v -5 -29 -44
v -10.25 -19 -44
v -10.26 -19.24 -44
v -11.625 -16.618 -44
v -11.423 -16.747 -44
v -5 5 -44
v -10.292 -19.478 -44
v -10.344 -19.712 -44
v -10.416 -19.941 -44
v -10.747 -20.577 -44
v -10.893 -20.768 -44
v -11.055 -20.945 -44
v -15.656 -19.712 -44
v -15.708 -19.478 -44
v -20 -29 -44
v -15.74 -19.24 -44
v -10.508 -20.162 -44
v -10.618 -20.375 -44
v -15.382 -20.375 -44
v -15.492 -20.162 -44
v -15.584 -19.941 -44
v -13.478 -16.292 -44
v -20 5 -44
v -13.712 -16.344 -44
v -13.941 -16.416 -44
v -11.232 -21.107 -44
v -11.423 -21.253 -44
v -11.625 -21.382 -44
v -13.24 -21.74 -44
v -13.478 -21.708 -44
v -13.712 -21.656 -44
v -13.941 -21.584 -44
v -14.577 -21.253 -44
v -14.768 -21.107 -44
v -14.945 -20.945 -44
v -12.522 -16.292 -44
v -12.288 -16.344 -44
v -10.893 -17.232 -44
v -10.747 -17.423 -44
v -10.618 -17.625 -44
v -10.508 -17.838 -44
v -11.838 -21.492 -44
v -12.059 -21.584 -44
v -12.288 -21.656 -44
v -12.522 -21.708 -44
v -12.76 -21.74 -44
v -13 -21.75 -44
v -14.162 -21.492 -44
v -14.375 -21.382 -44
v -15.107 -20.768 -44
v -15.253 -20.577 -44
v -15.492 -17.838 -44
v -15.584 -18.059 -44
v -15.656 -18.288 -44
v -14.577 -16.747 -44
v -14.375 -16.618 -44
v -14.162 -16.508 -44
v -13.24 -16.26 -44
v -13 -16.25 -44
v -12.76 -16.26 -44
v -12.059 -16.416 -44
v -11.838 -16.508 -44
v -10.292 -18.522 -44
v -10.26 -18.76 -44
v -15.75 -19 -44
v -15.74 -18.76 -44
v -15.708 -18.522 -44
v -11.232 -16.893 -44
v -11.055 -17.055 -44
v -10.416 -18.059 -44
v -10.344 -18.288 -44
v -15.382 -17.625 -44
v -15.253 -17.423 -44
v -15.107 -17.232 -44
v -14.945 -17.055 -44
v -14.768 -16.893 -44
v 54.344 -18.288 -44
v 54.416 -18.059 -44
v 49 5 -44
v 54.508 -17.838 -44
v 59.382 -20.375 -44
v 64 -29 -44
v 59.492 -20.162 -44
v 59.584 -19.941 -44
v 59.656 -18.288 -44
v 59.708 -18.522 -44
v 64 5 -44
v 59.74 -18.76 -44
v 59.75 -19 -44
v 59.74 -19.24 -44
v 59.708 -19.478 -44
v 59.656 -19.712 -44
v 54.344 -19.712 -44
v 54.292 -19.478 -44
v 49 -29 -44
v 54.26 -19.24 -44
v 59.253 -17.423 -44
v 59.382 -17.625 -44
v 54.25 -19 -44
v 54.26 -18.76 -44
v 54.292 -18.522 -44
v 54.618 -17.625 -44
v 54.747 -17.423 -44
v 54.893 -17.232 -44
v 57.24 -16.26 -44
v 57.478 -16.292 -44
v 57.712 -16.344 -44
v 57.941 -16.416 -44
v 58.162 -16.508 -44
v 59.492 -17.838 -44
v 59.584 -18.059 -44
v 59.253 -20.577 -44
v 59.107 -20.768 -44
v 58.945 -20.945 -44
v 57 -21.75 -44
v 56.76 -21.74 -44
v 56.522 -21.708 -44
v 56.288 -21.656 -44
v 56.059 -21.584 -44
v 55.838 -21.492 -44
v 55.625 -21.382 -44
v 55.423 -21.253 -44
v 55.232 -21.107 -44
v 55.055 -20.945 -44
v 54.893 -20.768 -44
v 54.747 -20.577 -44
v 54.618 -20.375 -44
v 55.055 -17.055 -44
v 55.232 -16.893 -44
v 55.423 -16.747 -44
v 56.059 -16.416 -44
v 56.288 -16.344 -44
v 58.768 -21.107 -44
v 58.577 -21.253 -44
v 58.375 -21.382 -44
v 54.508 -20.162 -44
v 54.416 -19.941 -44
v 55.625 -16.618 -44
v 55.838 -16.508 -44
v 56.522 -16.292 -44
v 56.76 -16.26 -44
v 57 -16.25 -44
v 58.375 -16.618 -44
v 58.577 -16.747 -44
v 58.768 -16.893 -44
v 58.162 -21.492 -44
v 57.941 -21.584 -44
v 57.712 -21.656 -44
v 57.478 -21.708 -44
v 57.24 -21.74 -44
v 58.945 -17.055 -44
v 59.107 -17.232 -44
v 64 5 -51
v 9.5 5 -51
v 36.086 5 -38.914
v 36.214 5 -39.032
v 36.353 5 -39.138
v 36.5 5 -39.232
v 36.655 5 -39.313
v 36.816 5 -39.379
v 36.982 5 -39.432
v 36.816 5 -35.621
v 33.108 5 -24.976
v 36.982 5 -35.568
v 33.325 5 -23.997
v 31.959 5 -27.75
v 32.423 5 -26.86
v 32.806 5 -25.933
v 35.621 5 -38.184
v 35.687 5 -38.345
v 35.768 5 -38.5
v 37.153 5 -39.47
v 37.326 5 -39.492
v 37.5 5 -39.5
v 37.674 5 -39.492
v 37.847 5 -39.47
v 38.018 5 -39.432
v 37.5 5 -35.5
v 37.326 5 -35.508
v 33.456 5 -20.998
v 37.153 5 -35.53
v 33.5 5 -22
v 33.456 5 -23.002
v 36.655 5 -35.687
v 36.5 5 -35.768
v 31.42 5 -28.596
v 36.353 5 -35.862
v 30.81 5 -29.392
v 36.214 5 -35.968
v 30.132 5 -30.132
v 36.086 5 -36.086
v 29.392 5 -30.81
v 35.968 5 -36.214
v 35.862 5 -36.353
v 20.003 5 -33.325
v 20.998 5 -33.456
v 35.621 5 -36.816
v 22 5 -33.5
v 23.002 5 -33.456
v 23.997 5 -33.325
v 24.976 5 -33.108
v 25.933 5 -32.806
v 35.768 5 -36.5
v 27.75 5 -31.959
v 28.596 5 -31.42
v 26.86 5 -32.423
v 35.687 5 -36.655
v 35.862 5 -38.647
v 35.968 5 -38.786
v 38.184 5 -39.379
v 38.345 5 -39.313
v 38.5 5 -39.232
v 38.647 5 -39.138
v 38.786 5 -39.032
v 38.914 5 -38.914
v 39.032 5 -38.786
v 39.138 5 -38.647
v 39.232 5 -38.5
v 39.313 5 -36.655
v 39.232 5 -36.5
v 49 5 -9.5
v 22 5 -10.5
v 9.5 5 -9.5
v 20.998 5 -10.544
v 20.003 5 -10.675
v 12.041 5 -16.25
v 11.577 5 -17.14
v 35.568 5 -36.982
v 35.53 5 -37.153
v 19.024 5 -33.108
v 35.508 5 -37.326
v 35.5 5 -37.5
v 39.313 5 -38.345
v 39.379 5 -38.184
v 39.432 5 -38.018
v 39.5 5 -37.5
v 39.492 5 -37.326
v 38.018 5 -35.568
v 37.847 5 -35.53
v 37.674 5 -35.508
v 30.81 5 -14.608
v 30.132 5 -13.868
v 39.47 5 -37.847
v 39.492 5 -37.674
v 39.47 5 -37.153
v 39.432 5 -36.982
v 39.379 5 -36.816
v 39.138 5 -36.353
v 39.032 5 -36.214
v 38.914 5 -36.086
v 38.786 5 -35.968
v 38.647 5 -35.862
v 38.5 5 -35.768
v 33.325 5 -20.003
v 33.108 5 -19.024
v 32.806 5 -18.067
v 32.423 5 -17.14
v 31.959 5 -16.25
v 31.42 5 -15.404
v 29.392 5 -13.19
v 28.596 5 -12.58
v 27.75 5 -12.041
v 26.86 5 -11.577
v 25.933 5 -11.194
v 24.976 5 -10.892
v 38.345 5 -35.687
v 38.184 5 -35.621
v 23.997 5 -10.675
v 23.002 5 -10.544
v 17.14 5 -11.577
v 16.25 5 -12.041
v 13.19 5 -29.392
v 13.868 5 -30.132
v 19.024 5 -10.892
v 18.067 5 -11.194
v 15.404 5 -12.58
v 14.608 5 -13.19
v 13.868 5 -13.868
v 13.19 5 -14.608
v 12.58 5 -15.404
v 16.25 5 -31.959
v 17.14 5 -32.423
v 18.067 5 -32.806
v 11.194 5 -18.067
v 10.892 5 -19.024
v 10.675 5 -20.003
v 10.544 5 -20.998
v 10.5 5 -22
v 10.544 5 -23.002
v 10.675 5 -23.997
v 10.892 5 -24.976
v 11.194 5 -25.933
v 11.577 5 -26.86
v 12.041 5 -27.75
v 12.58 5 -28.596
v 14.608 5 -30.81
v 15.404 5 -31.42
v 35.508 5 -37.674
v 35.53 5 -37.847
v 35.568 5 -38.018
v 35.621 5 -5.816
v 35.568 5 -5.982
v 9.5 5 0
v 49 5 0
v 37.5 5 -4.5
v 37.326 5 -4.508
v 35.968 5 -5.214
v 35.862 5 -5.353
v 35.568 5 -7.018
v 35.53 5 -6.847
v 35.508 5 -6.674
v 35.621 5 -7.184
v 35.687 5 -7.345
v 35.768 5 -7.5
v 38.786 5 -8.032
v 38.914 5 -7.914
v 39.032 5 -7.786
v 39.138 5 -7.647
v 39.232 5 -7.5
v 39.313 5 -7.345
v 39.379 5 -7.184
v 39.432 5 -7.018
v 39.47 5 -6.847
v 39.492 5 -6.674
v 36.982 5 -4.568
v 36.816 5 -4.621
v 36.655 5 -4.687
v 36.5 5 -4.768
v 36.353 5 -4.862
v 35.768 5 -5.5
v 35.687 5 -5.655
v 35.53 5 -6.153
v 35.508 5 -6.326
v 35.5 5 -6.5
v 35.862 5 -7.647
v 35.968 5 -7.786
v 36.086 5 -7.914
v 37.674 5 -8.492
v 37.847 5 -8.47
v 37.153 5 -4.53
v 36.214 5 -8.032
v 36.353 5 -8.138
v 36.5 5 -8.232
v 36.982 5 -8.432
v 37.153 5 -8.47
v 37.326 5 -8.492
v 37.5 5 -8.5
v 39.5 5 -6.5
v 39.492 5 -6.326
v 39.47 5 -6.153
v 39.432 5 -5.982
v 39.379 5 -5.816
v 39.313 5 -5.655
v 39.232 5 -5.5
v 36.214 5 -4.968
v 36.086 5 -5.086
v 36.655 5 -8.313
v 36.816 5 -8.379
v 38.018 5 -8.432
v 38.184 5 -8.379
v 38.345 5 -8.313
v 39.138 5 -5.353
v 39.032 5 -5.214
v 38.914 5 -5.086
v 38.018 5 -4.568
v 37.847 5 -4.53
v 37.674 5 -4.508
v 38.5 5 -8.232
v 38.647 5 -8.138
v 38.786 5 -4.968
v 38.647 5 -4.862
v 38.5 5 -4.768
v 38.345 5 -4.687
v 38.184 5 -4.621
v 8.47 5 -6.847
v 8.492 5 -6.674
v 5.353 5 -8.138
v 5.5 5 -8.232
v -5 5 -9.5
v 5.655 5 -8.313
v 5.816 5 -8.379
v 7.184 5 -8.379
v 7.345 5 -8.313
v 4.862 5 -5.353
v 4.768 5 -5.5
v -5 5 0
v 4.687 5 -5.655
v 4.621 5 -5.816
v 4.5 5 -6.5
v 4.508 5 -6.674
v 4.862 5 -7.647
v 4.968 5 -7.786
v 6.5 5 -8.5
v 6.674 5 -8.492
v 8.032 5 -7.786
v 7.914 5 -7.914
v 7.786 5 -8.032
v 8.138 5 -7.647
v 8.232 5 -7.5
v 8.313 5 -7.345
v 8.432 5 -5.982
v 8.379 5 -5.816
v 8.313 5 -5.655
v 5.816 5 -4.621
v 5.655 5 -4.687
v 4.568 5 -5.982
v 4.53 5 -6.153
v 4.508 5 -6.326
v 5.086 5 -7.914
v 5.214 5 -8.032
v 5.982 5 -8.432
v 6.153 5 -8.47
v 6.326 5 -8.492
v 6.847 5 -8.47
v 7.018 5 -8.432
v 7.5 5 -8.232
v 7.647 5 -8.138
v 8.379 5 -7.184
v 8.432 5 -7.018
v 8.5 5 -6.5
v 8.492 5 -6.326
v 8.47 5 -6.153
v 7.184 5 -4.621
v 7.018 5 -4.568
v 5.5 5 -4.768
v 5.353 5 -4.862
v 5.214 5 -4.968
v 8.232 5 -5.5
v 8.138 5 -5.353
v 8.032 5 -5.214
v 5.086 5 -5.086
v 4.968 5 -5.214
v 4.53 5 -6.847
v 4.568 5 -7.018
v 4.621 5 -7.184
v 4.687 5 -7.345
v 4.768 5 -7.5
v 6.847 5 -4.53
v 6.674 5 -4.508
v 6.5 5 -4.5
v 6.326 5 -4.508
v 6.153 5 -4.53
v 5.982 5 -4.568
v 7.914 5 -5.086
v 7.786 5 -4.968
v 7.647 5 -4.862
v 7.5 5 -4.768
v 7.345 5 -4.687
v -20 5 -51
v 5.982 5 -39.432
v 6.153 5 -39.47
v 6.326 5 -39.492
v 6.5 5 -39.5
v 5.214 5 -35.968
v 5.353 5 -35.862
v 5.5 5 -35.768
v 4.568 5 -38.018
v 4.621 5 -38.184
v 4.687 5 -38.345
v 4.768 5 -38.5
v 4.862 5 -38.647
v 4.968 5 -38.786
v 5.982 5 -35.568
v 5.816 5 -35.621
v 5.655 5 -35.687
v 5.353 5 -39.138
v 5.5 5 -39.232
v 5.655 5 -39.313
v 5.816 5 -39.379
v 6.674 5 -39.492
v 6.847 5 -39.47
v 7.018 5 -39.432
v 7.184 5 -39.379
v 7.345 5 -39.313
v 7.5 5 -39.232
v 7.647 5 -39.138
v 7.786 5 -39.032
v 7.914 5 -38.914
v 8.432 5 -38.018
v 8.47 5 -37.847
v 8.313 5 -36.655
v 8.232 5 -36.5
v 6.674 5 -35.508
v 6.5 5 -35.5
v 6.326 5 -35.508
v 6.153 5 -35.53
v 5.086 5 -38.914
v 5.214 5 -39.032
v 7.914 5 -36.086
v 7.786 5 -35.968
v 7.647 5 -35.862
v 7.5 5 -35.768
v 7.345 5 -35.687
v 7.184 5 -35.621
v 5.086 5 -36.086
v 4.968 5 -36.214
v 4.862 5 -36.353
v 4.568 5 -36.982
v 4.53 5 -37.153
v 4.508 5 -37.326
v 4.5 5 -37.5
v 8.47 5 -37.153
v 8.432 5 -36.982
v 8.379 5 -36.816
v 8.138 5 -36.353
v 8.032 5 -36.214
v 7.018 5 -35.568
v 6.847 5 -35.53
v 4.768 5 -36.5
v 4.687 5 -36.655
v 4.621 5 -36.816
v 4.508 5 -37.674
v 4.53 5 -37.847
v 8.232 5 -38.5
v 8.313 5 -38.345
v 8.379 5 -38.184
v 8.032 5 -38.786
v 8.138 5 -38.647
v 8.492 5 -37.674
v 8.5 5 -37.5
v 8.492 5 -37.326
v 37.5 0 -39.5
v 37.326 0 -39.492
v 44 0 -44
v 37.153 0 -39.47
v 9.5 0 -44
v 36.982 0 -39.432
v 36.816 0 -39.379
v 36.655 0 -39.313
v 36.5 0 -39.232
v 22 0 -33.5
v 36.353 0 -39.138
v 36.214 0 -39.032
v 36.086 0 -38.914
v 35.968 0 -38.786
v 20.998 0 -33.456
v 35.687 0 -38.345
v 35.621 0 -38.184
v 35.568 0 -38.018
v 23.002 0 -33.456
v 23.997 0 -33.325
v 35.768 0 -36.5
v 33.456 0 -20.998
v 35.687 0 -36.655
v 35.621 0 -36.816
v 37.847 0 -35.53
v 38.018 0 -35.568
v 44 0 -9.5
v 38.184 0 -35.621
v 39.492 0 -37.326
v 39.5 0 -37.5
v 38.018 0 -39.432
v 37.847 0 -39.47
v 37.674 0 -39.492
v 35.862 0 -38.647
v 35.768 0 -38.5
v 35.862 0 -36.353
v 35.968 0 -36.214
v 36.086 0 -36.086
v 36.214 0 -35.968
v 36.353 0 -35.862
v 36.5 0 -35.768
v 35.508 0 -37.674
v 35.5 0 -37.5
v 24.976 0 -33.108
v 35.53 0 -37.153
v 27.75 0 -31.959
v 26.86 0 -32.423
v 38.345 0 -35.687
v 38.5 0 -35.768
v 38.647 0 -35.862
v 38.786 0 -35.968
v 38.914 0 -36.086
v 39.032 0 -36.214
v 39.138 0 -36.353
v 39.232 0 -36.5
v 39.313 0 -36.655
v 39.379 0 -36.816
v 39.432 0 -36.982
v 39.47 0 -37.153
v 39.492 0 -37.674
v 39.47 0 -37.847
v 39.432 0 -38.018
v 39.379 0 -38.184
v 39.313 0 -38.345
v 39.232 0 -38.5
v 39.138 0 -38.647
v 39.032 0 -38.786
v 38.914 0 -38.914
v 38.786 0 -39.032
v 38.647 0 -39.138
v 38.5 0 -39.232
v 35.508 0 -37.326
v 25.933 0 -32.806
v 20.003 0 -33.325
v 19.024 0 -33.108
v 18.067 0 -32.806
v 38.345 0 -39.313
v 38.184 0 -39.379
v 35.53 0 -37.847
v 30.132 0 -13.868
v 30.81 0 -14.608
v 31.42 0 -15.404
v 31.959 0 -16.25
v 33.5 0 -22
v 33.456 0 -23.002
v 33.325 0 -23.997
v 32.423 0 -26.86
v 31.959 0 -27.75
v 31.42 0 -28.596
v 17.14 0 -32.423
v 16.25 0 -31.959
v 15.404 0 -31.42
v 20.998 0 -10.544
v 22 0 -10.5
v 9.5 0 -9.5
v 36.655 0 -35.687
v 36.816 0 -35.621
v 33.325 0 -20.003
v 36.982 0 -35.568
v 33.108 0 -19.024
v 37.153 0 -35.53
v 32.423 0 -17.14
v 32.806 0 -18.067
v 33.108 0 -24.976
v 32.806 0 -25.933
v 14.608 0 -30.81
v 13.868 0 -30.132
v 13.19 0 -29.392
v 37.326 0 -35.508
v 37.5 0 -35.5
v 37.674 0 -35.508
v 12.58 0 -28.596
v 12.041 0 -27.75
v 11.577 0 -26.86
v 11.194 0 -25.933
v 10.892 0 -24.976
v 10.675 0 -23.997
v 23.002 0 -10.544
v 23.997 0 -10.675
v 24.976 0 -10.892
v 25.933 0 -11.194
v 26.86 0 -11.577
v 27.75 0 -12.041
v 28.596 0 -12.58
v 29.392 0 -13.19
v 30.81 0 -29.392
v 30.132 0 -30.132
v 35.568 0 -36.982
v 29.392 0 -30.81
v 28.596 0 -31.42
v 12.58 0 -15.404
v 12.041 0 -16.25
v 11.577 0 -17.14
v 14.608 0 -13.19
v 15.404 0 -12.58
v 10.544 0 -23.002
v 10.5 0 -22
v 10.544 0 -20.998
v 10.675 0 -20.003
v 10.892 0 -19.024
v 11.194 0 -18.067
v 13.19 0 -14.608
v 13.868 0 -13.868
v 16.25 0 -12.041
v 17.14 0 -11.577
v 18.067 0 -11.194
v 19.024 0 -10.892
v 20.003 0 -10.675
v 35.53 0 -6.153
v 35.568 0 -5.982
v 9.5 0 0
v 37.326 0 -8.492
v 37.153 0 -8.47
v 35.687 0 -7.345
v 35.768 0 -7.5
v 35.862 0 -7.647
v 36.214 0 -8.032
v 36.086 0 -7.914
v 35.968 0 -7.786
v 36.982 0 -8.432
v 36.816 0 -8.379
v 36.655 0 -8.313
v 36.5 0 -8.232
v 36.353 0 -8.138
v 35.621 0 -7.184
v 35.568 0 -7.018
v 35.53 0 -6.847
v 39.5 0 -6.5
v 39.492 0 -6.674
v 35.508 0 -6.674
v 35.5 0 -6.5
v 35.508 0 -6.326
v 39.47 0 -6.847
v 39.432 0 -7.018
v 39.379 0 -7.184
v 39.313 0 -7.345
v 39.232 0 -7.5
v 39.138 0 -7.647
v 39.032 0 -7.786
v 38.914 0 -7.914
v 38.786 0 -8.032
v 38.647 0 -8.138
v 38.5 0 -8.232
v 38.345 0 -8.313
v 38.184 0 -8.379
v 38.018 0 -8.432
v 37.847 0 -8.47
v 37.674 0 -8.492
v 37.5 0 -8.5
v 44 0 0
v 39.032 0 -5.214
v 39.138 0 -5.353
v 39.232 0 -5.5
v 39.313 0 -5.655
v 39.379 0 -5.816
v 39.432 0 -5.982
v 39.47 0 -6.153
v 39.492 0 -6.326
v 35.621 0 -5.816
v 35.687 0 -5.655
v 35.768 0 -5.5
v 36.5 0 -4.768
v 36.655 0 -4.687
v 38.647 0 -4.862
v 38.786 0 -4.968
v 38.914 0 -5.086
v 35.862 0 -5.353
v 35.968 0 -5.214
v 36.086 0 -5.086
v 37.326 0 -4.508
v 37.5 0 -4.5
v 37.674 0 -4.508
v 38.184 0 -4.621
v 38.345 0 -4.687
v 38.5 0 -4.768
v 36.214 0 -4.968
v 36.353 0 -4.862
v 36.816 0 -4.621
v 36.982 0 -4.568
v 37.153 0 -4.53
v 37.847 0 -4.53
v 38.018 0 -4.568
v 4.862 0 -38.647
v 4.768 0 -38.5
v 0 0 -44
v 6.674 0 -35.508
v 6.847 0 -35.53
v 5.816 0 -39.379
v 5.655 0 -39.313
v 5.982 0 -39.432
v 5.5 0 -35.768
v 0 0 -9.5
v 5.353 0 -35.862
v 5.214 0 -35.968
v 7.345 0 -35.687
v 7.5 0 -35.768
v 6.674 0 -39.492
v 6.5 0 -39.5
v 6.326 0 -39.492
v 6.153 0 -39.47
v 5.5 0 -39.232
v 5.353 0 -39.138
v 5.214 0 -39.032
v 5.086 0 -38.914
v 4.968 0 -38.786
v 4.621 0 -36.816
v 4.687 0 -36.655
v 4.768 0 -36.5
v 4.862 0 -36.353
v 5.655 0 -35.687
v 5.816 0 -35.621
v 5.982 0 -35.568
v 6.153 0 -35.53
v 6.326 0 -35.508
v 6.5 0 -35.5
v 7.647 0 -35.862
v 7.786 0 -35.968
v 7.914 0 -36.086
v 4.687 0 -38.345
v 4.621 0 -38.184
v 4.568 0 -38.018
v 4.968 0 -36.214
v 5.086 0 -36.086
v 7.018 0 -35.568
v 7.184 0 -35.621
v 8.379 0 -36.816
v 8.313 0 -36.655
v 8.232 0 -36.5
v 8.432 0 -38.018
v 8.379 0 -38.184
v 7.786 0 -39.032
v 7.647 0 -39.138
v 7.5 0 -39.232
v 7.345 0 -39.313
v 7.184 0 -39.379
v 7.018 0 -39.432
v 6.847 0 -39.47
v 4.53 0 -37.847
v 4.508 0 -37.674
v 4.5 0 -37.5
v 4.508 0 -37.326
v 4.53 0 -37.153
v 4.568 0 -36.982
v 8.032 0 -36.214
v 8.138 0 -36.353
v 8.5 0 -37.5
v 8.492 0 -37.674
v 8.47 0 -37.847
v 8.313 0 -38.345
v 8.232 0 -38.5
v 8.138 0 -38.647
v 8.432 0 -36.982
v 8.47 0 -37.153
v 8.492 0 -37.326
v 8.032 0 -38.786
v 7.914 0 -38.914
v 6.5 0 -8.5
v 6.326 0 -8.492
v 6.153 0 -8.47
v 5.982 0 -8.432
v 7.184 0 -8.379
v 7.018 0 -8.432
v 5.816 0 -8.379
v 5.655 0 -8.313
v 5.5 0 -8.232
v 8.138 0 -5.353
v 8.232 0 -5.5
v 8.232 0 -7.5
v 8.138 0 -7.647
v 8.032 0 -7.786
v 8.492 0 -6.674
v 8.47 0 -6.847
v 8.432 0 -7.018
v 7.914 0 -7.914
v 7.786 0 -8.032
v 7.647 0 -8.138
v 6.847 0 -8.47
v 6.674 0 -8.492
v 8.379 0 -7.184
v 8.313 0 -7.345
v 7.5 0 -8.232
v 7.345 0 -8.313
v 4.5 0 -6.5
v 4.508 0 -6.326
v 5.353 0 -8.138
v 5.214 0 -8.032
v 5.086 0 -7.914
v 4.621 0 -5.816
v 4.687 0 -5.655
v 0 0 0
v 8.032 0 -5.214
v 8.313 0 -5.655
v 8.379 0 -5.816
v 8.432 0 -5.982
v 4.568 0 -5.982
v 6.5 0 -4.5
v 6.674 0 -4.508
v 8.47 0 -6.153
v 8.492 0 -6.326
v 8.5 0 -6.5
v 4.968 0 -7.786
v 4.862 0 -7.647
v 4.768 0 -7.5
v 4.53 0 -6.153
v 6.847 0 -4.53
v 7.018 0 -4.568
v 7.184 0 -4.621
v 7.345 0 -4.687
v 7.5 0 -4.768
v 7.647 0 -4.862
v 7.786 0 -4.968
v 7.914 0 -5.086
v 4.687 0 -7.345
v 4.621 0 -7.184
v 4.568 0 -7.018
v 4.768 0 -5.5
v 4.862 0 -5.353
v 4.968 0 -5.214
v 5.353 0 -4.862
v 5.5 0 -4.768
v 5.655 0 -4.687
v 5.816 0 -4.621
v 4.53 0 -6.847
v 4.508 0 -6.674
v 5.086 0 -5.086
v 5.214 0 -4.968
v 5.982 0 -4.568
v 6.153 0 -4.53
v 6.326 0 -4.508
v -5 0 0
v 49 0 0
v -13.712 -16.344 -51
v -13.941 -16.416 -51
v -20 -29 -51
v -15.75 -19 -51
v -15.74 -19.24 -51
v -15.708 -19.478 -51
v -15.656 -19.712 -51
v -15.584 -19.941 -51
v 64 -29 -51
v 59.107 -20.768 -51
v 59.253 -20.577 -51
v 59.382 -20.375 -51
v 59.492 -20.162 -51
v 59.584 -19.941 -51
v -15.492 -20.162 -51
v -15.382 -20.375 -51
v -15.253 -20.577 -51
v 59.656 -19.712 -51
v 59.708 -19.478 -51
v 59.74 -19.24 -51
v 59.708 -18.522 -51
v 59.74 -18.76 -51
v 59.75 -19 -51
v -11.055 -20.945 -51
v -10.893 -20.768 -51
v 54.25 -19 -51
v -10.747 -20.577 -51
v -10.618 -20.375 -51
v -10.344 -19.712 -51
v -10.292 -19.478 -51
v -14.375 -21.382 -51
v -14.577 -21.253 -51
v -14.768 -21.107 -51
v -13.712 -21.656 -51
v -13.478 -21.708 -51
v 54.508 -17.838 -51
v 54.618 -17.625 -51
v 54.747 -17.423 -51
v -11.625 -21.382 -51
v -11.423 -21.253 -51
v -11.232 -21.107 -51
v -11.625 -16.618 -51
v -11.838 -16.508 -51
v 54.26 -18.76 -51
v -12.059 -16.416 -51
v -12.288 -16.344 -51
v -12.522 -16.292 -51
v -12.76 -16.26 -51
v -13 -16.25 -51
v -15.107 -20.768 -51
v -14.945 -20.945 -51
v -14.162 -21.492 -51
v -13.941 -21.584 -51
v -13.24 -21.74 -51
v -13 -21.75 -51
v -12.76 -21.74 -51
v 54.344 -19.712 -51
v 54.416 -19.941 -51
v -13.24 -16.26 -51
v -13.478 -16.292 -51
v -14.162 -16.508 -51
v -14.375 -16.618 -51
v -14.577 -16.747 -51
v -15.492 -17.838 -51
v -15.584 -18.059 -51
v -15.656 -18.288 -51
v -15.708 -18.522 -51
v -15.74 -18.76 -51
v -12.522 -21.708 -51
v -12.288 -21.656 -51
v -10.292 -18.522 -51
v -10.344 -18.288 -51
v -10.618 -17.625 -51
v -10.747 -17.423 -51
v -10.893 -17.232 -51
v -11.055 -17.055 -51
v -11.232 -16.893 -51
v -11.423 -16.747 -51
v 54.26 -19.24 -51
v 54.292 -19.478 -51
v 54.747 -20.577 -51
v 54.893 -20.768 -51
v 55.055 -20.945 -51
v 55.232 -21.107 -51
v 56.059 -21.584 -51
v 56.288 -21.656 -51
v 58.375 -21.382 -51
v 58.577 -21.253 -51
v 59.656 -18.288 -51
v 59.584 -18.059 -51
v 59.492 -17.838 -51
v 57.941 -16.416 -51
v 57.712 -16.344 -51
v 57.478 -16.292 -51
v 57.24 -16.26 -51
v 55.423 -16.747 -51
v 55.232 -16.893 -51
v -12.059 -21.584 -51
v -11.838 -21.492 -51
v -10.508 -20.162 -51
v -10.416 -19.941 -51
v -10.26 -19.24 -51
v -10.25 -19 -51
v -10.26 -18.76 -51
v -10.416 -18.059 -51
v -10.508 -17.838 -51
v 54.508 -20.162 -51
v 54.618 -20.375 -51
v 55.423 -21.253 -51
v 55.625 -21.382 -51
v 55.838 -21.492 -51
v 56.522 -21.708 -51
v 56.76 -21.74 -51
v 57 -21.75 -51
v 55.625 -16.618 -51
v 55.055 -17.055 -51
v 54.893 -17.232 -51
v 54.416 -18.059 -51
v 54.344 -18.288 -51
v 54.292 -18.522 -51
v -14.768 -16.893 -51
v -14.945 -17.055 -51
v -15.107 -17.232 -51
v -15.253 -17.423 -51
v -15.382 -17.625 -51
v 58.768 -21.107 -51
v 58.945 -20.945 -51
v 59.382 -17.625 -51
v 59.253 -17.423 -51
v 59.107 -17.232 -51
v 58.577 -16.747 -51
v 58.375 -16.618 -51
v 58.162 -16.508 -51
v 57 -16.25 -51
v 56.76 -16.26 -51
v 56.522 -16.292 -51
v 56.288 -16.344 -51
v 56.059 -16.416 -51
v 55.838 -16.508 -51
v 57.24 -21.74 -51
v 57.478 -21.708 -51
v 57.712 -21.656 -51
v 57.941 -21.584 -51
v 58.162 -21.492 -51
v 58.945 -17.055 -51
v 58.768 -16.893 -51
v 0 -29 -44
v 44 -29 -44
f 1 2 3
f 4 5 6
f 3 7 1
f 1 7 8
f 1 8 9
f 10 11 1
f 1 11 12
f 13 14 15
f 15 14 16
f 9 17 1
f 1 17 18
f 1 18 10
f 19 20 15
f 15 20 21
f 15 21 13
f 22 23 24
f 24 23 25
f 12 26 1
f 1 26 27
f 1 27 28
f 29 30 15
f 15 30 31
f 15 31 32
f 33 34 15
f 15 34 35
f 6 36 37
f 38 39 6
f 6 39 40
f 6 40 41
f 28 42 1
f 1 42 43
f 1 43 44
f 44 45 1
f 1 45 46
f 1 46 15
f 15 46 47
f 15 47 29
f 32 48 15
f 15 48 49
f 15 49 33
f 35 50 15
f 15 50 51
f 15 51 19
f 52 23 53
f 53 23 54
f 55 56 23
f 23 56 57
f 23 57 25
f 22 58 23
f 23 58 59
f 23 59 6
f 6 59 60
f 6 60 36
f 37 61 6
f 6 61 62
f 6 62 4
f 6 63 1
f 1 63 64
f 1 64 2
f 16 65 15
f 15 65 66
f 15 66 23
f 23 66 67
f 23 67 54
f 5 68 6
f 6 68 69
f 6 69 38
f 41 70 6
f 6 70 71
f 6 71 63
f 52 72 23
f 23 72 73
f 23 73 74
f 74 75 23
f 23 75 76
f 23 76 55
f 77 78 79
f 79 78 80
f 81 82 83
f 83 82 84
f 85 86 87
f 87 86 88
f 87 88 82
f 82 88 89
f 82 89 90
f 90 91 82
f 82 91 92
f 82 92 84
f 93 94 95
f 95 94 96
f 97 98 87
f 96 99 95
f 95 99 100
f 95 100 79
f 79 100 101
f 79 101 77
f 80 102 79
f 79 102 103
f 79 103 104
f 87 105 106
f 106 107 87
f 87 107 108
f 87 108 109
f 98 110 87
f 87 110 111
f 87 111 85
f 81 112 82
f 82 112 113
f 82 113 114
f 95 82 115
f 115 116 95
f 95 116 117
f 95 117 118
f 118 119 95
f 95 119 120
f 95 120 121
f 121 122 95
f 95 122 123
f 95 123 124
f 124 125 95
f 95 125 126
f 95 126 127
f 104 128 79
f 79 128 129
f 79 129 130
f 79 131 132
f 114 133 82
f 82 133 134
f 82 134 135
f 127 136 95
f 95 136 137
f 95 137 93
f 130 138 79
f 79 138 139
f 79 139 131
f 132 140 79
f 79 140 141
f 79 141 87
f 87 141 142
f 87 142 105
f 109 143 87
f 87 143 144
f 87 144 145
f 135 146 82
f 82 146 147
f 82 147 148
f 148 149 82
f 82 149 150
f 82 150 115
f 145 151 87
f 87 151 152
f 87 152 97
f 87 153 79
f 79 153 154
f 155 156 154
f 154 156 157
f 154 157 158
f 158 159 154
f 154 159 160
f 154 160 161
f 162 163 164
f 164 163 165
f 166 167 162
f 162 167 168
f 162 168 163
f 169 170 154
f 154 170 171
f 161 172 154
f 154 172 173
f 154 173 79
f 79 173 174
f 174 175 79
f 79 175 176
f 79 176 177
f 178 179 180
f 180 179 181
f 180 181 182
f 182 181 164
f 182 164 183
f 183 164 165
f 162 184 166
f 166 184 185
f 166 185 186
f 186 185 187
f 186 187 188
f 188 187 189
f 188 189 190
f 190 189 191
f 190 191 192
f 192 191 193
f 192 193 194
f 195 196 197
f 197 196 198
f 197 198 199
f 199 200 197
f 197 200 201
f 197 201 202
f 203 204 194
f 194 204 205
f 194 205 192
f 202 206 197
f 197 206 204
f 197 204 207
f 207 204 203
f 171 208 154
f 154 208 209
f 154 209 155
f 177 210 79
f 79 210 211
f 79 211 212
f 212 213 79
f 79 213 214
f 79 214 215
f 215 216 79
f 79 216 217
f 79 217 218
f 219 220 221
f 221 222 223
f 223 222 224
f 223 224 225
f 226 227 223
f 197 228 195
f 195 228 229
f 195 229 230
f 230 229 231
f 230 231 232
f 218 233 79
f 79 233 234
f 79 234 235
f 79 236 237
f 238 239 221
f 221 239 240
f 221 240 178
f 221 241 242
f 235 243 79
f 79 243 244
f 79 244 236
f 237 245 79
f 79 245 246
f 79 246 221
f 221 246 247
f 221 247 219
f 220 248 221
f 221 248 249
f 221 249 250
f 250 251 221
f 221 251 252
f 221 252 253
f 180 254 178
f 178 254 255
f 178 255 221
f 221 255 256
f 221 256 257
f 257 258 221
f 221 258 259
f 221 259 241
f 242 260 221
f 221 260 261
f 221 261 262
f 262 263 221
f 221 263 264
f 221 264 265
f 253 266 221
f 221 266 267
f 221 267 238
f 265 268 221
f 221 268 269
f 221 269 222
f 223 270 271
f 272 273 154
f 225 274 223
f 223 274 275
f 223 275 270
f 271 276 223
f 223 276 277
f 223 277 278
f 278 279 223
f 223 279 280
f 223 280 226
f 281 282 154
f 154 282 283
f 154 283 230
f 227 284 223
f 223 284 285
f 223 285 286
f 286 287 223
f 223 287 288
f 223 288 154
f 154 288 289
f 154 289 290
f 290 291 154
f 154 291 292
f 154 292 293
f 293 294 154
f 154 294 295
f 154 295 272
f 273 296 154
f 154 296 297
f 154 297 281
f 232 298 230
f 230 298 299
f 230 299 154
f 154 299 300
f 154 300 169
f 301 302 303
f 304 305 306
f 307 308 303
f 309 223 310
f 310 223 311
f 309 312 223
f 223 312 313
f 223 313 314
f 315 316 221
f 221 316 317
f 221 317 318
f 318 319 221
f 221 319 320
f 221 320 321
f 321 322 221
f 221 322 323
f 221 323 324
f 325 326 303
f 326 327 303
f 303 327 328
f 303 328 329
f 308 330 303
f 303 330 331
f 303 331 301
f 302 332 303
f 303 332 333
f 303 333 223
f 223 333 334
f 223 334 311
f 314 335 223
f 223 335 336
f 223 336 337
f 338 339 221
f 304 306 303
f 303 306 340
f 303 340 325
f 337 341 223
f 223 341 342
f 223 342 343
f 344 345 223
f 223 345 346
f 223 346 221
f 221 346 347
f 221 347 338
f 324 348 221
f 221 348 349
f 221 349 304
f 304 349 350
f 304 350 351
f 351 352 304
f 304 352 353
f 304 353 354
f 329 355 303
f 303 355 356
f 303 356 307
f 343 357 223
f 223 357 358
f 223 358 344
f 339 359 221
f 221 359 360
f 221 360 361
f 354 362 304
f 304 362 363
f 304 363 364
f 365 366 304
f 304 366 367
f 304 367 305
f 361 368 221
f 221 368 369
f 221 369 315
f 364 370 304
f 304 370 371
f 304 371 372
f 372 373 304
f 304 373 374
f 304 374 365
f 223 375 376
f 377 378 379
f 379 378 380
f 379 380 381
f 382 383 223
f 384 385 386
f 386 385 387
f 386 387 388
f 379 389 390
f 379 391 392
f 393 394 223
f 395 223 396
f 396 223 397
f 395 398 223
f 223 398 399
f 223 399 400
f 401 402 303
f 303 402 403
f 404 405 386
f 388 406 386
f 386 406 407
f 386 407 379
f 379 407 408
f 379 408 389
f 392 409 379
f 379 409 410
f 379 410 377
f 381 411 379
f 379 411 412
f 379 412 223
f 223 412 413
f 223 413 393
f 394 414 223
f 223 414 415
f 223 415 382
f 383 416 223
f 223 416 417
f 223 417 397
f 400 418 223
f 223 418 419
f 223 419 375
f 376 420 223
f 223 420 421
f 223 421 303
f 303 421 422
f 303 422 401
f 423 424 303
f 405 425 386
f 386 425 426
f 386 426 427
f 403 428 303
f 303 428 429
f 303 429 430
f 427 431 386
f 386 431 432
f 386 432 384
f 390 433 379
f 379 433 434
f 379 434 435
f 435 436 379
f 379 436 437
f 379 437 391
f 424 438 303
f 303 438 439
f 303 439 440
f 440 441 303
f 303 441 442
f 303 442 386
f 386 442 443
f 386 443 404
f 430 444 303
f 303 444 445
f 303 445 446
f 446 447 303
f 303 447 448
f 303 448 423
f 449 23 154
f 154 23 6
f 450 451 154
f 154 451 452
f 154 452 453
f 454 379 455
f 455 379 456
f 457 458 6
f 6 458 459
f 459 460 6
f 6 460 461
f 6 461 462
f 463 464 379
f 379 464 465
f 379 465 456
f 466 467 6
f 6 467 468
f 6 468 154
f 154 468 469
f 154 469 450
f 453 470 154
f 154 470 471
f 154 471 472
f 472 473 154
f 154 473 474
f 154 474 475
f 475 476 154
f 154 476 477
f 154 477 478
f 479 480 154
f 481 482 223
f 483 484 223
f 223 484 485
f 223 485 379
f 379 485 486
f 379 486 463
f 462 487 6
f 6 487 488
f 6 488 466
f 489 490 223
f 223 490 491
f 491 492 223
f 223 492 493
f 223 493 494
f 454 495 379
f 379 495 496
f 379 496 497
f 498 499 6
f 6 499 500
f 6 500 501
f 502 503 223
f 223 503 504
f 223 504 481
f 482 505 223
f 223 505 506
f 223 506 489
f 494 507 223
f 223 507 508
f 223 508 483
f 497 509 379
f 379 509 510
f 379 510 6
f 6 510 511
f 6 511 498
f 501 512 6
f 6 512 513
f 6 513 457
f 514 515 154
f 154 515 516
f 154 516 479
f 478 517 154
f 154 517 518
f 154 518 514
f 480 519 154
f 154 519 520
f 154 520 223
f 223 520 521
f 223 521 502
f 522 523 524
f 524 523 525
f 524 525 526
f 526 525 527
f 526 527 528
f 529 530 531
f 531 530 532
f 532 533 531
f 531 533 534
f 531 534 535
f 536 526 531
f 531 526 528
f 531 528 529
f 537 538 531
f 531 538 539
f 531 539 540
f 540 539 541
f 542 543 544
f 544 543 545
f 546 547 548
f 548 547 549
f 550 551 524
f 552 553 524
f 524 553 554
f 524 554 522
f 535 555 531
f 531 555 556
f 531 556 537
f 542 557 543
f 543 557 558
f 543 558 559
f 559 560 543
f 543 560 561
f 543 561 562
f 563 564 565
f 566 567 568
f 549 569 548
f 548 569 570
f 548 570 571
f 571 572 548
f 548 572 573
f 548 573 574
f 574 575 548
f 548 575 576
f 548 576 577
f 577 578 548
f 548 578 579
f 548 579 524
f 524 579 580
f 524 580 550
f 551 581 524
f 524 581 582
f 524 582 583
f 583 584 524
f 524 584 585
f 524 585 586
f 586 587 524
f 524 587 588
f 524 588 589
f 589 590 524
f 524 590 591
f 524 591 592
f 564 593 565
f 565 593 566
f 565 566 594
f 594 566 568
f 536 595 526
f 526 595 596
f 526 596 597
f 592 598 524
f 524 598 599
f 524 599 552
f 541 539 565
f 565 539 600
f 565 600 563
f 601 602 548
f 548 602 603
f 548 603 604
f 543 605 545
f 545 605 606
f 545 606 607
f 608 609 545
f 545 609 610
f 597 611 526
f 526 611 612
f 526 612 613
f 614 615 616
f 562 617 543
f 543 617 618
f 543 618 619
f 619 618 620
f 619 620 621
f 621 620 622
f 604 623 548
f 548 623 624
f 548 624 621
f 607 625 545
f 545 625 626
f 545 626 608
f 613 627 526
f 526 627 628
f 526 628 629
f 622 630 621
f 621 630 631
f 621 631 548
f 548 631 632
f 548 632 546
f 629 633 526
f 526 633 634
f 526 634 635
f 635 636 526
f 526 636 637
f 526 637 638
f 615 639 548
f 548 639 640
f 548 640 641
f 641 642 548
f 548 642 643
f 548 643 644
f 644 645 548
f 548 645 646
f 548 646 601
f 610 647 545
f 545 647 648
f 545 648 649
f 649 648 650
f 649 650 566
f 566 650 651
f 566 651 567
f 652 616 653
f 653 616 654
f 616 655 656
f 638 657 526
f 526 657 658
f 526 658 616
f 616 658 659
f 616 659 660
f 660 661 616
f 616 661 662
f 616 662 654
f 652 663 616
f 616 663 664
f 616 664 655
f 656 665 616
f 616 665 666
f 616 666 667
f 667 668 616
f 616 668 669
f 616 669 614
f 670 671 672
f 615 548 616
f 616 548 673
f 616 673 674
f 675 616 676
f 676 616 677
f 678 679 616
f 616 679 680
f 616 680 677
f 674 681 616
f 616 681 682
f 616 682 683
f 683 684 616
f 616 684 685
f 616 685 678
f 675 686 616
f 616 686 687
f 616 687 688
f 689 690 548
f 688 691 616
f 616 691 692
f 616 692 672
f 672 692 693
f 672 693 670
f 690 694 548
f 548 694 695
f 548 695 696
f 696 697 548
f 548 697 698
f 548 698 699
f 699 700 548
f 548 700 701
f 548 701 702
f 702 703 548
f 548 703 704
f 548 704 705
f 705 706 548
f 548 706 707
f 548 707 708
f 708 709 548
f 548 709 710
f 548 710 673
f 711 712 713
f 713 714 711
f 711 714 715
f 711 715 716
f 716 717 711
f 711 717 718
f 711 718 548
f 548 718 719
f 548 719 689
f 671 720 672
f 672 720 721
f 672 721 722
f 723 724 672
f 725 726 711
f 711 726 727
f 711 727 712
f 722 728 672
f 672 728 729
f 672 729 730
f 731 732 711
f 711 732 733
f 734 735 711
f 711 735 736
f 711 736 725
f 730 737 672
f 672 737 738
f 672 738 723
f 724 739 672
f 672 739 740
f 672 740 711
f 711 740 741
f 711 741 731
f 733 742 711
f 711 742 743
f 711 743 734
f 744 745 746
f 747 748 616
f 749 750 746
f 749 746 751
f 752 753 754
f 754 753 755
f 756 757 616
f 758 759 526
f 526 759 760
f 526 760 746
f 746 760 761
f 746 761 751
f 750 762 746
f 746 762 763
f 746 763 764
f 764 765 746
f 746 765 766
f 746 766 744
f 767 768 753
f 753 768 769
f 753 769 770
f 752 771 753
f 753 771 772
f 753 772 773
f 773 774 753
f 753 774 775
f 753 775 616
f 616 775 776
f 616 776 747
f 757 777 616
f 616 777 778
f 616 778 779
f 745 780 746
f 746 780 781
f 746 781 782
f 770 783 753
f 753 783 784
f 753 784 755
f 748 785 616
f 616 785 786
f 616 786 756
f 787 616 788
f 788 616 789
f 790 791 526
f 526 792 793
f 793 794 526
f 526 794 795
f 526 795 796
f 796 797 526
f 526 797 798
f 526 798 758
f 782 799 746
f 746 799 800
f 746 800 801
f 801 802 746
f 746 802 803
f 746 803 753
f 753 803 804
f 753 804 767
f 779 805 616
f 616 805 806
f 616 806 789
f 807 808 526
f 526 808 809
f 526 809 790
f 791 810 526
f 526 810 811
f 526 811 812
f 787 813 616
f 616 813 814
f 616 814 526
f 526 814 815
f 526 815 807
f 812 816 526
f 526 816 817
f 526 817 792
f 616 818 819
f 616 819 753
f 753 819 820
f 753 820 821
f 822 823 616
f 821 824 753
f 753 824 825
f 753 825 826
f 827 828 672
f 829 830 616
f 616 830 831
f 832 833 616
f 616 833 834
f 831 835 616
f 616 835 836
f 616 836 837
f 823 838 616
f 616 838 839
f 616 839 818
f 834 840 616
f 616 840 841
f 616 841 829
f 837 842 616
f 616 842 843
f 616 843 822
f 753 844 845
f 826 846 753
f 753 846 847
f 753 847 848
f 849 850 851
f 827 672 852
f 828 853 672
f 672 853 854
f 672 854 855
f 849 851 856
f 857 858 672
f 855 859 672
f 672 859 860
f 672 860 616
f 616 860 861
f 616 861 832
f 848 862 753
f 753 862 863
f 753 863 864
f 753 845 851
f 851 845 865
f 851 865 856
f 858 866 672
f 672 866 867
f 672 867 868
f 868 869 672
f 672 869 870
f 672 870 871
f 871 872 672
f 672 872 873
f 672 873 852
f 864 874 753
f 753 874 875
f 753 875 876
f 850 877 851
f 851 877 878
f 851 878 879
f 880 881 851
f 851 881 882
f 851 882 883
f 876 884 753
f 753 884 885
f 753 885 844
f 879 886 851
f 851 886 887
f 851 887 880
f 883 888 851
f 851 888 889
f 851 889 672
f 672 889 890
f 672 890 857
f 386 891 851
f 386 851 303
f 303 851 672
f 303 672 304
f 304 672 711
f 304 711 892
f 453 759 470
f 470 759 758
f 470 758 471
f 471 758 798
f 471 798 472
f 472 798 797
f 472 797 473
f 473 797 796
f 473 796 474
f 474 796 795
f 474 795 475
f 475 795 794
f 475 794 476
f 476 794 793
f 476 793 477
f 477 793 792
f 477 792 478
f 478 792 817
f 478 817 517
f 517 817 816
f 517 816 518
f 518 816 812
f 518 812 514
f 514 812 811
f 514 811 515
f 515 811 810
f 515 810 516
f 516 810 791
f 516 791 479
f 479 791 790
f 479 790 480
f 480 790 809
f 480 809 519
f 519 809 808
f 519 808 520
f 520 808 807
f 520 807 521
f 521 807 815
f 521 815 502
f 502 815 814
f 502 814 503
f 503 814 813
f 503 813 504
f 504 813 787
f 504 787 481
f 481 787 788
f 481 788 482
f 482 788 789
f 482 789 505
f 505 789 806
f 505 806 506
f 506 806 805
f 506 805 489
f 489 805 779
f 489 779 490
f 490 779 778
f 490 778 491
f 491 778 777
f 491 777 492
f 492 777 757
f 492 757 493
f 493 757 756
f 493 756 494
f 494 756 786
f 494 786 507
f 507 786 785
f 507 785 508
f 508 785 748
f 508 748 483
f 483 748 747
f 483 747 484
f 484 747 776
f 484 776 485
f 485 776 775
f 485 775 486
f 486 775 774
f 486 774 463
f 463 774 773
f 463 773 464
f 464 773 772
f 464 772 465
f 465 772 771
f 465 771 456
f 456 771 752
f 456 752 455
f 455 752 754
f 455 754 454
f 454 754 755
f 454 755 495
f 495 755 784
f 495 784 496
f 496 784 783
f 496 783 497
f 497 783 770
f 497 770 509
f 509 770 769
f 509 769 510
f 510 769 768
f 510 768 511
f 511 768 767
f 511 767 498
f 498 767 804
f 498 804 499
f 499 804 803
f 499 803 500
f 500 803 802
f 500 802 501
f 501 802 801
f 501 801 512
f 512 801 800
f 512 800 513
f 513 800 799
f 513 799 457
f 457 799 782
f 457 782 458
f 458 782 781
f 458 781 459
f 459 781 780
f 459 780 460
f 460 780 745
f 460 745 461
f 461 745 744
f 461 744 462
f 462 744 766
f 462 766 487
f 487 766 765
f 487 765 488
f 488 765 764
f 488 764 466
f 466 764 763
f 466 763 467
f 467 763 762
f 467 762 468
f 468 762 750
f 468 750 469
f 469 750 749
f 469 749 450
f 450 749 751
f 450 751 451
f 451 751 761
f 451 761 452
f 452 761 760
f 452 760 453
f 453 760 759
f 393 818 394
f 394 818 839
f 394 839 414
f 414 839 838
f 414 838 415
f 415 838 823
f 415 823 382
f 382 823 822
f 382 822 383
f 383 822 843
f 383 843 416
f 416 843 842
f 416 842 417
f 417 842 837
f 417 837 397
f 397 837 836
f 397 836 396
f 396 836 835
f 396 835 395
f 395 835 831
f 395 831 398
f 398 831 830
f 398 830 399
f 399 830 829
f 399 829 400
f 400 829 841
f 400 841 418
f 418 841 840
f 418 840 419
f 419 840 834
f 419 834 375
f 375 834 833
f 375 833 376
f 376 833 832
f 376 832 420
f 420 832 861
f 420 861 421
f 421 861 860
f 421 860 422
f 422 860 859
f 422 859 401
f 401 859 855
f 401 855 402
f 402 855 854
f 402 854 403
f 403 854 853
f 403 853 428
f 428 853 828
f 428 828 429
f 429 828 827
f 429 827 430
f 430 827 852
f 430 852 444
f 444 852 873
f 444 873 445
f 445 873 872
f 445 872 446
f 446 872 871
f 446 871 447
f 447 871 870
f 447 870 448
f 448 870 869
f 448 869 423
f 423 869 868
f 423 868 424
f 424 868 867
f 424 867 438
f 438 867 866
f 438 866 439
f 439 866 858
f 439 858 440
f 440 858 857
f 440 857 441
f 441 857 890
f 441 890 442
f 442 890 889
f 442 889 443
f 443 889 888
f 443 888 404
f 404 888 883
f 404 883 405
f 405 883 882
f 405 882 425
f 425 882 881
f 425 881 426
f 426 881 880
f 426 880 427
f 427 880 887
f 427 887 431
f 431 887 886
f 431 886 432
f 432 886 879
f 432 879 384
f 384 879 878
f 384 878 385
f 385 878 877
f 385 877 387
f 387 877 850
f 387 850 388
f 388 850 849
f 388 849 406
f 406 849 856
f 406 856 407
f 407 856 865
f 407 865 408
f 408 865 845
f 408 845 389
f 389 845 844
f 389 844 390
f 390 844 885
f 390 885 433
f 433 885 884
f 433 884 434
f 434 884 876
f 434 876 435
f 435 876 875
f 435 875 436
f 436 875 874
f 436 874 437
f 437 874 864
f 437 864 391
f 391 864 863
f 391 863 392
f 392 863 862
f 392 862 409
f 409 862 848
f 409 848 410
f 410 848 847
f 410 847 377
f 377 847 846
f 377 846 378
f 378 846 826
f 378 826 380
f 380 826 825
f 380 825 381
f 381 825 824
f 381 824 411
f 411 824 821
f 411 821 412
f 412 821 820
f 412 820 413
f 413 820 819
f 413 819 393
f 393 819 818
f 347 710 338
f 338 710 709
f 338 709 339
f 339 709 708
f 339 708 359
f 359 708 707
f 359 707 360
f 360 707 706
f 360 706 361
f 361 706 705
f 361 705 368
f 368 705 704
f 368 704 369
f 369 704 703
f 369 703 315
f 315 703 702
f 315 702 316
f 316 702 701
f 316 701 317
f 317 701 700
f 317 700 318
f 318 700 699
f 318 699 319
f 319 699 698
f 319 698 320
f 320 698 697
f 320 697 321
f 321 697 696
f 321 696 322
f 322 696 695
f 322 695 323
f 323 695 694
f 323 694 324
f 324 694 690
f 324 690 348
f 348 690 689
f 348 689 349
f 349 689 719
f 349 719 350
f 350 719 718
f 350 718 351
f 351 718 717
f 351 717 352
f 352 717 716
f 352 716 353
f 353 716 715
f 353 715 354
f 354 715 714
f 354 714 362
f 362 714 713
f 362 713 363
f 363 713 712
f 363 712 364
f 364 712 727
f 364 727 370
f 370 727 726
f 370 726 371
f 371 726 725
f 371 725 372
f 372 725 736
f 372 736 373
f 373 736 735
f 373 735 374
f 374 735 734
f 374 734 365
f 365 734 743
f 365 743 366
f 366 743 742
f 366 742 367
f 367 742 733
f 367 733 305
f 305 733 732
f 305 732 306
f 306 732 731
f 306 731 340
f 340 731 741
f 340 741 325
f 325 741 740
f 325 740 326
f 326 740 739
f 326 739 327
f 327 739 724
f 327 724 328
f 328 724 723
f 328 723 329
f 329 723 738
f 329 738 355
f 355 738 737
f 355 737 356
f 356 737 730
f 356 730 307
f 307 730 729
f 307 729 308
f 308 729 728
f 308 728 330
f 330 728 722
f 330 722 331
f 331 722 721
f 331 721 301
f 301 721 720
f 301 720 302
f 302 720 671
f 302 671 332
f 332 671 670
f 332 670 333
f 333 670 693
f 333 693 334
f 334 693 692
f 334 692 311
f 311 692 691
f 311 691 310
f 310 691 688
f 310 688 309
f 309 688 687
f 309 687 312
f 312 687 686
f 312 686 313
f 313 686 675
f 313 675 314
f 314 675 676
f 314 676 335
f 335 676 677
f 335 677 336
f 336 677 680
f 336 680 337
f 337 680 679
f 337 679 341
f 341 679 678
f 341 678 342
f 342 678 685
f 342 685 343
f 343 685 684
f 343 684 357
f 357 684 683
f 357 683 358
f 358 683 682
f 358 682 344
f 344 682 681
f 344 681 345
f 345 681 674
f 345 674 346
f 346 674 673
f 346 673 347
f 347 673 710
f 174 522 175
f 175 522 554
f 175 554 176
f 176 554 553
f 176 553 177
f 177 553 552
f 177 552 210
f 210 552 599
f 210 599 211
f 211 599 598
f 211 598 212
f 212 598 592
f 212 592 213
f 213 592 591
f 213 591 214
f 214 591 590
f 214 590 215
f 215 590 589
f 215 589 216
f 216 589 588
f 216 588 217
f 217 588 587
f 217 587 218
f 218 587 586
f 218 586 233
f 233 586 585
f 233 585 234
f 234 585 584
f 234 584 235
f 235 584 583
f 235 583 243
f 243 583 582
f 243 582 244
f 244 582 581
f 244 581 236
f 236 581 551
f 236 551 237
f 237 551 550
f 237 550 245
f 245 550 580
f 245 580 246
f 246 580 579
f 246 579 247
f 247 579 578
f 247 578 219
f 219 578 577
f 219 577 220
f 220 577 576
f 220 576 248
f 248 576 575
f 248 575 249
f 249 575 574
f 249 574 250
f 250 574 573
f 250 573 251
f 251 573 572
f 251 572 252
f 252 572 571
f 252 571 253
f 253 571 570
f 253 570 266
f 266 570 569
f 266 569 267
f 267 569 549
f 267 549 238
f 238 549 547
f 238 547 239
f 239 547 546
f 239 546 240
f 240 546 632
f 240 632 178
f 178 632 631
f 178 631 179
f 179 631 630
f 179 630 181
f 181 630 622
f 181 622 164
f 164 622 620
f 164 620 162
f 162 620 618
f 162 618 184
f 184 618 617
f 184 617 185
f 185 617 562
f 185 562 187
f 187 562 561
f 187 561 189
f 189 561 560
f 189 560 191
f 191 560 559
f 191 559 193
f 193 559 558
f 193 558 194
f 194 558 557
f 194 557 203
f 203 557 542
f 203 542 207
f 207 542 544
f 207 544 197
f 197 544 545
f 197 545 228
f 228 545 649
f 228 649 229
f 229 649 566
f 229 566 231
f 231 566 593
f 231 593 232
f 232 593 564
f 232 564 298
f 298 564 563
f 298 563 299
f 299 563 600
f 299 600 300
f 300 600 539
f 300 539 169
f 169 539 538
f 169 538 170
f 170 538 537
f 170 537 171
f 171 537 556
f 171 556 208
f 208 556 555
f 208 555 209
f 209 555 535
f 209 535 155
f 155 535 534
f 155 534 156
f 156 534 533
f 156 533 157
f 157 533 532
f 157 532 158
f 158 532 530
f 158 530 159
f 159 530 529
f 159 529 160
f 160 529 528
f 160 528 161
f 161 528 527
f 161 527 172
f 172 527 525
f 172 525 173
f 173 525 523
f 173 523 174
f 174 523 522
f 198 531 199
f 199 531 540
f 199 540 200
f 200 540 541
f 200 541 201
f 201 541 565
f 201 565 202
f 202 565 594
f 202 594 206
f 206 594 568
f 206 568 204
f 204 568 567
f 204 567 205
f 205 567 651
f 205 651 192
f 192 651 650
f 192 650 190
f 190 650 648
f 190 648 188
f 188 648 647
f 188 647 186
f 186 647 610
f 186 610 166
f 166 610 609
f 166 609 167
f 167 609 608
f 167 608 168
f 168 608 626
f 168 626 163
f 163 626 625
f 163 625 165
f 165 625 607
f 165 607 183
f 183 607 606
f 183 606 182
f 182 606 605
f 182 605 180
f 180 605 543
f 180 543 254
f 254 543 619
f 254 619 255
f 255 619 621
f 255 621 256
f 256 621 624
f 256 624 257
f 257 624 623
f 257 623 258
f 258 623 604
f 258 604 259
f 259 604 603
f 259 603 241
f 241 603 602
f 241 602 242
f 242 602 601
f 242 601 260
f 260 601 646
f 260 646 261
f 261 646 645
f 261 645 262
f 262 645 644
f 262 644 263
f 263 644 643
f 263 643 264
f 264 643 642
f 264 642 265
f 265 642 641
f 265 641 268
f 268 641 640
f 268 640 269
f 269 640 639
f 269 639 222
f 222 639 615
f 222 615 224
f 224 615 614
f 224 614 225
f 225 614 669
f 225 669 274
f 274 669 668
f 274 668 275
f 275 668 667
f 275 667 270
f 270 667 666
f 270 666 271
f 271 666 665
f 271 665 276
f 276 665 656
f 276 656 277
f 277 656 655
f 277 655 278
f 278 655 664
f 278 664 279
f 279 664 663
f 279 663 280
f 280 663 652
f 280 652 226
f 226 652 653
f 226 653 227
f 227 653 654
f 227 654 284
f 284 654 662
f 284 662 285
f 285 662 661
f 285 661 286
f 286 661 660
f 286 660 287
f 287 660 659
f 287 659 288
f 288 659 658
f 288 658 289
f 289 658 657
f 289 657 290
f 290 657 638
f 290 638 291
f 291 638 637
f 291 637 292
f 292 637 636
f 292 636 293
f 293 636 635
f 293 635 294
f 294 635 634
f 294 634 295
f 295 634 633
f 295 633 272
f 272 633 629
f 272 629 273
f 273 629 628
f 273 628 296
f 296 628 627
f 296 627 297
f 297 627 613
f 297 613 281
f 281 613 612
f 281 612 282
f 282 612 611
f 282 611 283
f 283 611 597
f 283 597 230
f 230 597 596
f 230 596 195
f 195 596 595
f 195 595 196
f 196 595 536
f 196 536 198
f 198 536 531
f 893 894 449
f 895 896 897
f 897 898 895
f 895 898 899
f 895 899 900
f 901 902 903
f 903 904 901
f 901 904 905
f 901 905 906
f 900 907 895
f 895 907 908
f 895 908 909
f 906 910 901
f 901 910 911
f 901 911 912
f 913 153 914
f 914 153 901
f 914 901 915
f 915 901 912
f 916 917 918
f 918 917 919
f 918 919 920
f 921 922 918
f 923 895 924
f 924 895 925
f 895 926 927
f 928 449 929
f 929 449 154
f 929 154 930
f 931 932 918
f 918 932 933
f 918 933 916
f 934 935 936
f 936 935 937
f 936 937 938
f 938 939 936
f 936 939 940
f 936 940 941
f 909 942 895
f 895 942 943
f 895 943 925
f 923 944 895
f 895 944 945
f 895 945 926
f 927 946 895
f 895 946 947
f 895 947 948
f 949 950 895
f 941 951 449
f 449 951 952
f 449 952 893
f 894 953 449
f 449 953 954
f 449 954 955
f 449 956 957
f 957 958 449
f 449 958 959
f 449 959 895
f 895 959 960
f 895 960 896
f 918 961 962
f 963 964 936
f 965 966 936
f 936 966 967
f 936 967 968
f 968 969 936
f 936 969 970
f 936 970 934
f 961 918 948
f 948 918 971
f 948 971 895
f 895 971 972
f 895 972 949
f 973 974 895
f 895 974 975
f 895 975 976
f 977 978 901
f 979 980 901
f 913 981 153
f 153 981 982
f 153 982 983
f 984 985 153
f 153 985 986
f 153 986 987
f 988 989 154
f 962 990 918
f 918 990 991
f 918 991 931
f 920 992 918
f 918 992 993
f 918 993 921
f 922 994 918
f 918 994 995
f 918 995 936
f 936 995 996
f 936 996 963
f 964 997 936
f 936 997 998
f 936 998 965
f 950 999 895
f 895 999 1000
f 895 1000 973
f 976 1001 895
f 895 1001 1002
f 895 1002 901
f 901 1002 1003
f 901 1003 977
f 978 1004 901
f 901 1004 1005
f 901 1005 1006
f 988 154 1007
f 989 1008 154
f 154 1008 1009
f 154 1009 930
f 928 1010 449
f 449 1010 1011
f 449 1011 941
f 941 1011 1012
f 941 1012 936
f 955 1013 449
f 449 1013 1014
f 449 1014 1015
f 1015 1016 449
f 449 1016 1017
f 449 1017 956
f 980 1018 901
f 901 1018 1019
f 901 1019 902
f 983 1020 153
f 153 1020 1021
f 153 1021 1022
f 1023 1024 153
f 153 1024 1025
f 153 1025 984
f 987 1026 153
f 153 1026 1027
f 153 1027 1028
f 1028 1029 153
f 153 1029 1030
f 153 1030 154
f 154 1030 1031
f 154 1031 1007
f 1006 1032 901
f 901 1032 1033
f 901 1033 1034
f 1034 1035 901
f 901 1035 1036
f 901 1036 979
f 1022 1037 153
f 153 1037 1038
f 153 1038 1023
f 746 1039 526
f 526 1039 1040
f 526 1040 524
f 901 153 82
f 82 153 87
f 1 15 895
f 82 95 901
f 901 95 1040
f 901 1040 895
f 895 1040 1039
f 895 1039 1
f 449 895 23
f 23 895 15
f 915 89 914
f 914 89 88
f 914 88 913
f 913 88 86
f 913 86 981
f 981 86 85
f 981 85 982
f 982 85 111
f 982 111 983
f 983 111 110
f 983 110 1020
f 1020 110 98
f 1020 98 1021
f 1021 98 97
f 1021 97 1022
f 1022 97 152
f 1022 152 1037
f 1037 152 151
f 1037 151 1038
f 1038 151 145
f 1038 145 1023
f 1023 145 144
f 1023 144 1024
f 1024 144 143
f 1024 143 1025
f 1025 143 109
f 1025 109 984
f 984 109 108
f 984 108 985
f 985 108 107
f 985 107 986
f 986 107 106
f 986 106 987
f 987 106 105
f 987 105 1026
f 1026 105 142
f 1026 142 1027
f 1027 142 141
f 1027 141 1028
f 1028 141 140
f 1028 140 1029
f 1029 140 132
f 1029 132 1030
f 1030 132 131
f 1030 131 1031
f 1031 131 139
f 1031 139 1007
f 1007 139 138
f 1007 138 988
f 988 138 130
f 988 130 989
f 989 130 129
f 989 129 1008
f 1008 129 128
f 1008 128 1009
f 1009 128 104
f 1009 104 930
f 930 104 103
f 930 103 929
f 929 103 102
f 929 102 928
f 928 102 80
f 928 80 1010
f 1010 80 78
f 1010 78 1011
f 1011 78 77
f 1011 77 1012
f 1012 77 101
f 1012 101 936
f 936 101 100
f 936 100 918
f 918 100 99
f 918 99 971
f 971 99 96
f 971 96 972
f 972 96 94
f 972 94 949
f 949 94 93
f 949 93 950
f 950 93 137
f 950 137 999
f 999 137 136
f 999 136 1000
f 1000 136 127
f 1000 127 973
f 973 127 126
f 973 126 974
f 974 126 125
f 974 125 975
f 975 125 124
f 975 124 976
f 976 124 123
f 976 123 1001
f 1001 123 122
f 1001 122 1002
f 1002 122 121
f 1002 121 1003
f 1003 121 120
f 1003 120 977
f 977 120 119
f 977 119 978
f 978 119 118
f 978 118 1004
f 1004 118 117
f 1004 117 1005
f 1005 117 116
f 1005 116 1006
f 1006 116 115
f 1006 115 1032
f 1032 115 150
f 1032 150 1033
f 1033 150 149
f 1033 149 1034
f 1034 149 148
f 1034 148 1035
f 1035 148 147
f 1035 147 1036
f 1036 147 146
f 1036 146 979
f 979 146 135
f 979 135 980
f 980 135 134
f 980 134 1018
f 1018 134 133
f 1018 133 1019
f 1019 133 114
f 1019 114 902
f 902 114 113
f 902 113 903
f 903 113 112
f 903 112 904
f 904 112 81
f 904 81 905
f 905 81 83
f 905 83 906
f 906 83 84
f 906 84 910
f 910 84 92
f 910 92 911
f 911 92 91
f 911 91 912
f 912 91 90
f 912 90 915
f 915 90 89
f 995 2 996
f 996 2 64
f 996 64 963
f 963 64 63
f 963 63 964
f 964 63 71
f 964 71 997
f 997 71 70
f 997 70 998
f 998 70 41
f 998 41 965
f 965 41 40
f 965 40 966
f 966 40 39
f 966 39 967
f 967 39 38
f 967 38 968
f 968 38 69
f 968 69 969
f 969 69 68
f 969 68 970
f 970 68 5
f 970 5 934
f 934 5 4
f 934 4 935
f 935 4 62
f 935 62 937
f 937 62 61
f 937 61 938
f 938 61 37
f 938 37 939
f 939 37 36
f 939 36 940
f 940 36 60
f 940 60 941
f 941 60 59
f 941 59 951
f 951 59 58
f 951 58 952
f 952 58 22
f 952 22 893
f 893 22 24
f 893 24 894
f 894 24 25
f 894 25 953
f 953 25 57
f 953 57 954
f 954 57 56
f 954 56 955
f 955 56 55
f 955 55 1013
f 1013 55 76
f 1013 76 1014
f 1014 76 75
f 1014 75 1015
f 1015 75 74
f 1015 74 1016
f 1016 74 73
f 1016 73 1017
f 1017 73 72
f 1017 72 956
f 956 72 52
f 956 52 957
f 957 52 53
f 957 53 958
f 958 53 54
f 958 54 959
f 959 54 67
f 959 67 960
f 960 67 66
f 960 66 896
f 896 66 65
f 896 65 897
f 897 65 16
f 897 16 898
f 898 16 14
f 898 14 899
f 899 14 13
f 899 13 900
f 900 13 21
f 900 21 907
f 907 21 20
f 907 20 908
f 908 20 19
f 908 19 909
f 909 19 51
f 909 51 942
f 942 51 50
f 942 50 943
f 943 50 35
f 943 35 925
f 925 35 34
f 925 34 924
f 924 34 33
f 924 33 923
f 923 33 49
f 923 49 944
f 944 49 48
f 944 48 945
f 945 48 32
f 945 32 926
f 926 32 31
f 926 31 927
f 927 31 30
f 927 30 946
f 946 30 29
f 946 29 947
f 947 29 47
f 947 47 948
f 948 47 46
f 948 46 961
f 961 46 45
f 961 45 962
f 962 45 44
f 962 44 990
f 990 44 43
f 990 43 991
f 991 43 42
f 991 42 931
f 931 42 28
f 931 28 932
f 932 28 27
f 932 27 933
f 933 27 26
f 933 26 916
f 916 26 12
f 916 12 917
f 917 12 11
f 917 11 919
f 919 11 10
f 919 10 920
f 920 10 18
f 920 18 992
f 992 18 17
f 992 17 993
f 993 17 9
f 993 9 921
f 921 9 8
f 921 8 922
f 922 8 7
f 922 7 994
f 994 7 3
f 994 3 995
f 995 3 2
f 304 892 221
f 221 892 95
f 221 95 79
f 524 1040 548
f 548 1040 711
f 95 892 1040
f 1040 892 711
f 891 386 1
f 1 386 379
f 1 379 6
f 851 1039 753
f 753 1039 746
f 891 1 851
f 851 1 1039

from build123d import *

# Parameters (mm, degrees)
SKETCH2_W           = 44
SKETCH2_H           = 44
SKETCH2_R           = 2
SKETCH2_R_2         = 11.5
BOSS_EXTRUDE1_DEPTH = 5
SKETCH4_W           = 84
SKETCH4_H           = 34
SKETCH4_R           = 2.75
BOSS_EXTRUDE2_DEPTH = 7
BOSS_EXTRUDE3_DEPTH = 5
BOSS_EXTRUDE4_DEPTH = 5


with BuildPart() as part:
    # Sketch2 → Boss-Extrude1 (new body)
    with BuildSketch(Plane(origin=(0, 0, 0), x_dir=(1, 0, 0), z_dir=(0, 1, 0))):
        with Locations((22, 22)):
            Rectangle(SKETCH2_W, SKETCH2_H)
        with Locations((6.5, 37.5)):
            Circle(SKETCH2_R, mode=Mode.SUBTRACT)
        with Locations((6.5, 6.5)):
            Circle(SKETCH2_R, mode=Mode.SUBTRACT)
        with Locations((37.5, 6.5)):
            Circle(SKETCH2_R, mode=Mode.SUBTRACT)
        with Locations((37.5, 37.5)):
            Circle(SKETCH2_R, mode=Mode.SUBTRACT)
        with Locations((22, 22)):
            Circle(SKETCH2_R_2, mode=Mode.SUBTRACT)
    extrude(amount=BOSS_EXTRUDE1_DEPTH)

    # Sketch4 → Boss-Extrude2 (add)
    with BuildSketch(Plane(origin=(0, 0, -44), x_dir=(-1, 0, 0), z_dir=(0, 0, -1))):
        with Locations((-22, -12)):
            Rectangle(SKETCH4_W, SKETCH4_H)
        with Locations((-57, -19)):
            Circle(SKETCH4_R, mode=Mode.SUBTRACT)
        with Locations((13, -19)):
            Circle(SKETCH4_R, mode=Mode.SUBTRACT)
    extrude(amount=BOSS_EXTRUDE2_DEPTH)

    # Sketch5 → Boss-Extrude3 (add)
    with BuildSketch(Plane(origin=(44, 0, 0), x_dir=(0, 0, -1), z_dir=(1, 0, 0))):
        Polygon((0, 5), (51, 5), (51, -29), (44, -29), (0, 0), align=None)
    extrude(amount=BOSS_EXTRUDE3_DEPTH)

    # Sketch6 → Boss-Extrude4 (add)
    with BuildSketch(Plane.ZY):
        Polygon((-51, 5), (0, 5), (0, 0), (-44, -29), (-51, -29), align=None)
    extrude(amount=BOSS_EXTRUDE4_DEPTH)


solid = part.part
